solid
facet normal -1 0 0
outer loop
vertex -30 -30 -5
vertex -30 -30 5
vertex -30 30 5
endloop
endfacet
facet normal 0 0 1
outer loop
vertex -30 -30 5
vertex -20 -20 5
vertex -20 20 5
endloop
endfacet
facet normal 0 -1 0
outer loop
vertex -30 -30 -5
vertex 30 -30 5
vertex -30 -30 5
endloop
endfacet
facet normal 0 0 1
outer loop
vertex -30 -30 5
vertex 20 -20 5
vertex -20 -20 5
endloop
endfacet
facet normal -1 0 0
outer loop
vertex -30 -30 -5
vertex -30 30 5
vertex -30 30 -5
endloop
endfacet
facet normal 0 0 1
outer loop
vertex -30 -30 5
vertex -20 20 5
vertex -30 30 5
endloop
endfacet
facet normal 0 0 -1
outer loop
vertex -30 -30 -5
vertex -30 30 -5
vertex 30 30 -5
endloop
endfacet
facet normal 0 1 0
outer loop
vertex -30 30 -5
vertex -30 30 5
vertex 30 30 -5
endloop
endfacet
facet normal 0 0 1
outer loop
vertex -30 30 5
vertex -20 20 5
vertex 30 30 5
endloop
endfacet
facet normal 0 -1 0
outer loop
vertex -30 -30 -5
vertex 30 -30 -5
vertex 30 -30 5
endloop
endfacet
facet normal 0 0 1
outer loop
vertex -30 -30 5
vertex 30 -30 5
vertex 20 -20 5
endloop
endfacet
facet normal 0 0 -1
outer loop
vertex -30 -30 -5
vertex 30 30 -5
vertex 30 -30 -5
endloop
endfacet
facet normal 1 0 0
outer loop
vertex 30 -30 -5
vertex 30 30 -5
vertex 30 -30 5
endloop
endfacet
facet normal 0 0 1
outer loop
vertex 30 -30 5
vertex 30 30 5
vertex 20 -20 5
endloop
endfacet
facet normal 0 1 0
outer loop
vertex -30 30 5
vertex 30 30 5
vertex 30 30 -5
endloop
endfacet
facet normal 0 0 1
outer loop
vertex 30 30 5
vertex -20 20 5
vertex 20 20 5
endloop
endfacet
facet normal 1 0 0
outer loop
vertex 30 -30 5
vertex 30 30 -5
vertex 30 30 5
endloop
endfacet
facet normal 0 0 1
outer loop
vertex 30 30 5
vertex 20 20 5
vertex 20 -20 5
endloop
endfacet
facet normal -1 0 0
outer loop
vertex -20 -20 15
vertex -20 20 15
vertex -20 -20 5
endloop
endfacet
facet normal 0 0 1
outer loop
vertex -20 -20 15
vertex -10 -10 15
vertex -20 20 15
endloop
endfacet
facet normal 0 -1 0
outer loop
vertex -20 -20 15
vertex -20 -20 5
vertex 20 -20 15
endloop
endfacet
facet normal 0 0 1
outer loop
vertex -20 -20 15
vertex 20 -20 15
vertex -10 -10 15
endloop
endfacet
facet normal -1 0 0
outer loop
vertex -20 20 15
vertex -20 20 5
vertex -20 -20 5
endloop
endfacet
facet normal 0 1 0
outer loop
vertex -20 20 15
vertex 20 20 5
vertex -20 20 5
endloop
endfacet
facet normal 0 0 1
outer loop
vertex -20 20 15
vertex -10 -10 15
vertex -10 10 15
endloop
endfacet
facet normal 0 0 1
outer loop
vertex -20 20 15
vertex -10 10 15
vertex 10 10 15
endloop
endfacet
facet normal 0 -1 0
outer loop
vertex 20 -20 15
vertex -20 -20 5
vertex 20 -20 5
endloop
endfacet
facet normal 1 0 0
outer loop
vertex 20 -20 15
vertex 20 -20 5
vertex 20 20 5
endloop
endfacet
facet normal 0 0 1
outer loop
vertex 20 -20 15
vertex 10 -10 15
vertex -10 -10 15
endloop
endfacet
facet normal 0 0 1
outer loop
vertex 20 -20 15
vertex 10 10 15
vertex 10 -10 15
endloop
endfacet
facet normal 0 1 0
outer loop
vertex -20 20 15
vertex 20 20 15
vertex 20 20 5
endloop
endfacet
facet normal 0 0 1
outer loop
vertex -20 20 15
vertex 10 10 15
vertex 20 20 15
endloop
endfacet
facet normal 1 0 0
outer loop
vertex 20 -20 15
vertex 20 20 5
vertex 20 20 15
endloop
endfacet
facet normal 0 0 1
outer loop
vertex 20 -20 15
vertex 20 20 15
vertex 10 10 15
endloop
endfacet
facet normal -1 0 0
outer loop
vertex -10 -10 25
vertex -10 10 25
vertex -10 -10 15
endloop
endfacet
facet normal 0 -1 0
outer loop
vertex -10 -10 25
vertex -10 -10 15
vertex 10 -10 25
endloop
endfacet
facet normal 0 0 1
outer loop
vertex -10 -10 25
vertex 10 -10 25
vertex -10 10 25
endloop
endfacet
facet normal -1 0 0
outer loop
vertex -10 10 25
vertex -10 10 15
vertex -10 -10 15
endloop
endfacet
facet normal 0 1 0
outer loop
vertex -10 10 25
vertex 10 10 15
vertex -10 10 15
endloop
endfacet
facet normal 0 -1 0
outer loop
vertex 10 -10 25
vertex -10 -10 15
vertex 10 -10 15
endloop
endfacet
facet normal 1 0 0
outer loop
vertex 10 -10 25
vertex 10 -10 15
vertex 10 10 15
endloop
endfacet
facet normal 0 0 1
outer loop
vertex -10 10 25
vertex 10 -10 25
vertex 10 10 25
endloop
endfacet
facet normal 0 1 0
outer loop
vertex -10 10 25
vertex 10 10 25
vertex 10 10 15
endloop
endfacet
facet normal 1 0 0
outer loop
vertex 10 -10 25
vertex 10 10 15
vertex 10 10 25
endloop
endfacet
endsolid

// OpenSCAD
for (i = [0:2]) {
    translate([0, 0, i * 10])
        cube([60 - i * 20, 60 - i * 20, 10], center = true);
}
